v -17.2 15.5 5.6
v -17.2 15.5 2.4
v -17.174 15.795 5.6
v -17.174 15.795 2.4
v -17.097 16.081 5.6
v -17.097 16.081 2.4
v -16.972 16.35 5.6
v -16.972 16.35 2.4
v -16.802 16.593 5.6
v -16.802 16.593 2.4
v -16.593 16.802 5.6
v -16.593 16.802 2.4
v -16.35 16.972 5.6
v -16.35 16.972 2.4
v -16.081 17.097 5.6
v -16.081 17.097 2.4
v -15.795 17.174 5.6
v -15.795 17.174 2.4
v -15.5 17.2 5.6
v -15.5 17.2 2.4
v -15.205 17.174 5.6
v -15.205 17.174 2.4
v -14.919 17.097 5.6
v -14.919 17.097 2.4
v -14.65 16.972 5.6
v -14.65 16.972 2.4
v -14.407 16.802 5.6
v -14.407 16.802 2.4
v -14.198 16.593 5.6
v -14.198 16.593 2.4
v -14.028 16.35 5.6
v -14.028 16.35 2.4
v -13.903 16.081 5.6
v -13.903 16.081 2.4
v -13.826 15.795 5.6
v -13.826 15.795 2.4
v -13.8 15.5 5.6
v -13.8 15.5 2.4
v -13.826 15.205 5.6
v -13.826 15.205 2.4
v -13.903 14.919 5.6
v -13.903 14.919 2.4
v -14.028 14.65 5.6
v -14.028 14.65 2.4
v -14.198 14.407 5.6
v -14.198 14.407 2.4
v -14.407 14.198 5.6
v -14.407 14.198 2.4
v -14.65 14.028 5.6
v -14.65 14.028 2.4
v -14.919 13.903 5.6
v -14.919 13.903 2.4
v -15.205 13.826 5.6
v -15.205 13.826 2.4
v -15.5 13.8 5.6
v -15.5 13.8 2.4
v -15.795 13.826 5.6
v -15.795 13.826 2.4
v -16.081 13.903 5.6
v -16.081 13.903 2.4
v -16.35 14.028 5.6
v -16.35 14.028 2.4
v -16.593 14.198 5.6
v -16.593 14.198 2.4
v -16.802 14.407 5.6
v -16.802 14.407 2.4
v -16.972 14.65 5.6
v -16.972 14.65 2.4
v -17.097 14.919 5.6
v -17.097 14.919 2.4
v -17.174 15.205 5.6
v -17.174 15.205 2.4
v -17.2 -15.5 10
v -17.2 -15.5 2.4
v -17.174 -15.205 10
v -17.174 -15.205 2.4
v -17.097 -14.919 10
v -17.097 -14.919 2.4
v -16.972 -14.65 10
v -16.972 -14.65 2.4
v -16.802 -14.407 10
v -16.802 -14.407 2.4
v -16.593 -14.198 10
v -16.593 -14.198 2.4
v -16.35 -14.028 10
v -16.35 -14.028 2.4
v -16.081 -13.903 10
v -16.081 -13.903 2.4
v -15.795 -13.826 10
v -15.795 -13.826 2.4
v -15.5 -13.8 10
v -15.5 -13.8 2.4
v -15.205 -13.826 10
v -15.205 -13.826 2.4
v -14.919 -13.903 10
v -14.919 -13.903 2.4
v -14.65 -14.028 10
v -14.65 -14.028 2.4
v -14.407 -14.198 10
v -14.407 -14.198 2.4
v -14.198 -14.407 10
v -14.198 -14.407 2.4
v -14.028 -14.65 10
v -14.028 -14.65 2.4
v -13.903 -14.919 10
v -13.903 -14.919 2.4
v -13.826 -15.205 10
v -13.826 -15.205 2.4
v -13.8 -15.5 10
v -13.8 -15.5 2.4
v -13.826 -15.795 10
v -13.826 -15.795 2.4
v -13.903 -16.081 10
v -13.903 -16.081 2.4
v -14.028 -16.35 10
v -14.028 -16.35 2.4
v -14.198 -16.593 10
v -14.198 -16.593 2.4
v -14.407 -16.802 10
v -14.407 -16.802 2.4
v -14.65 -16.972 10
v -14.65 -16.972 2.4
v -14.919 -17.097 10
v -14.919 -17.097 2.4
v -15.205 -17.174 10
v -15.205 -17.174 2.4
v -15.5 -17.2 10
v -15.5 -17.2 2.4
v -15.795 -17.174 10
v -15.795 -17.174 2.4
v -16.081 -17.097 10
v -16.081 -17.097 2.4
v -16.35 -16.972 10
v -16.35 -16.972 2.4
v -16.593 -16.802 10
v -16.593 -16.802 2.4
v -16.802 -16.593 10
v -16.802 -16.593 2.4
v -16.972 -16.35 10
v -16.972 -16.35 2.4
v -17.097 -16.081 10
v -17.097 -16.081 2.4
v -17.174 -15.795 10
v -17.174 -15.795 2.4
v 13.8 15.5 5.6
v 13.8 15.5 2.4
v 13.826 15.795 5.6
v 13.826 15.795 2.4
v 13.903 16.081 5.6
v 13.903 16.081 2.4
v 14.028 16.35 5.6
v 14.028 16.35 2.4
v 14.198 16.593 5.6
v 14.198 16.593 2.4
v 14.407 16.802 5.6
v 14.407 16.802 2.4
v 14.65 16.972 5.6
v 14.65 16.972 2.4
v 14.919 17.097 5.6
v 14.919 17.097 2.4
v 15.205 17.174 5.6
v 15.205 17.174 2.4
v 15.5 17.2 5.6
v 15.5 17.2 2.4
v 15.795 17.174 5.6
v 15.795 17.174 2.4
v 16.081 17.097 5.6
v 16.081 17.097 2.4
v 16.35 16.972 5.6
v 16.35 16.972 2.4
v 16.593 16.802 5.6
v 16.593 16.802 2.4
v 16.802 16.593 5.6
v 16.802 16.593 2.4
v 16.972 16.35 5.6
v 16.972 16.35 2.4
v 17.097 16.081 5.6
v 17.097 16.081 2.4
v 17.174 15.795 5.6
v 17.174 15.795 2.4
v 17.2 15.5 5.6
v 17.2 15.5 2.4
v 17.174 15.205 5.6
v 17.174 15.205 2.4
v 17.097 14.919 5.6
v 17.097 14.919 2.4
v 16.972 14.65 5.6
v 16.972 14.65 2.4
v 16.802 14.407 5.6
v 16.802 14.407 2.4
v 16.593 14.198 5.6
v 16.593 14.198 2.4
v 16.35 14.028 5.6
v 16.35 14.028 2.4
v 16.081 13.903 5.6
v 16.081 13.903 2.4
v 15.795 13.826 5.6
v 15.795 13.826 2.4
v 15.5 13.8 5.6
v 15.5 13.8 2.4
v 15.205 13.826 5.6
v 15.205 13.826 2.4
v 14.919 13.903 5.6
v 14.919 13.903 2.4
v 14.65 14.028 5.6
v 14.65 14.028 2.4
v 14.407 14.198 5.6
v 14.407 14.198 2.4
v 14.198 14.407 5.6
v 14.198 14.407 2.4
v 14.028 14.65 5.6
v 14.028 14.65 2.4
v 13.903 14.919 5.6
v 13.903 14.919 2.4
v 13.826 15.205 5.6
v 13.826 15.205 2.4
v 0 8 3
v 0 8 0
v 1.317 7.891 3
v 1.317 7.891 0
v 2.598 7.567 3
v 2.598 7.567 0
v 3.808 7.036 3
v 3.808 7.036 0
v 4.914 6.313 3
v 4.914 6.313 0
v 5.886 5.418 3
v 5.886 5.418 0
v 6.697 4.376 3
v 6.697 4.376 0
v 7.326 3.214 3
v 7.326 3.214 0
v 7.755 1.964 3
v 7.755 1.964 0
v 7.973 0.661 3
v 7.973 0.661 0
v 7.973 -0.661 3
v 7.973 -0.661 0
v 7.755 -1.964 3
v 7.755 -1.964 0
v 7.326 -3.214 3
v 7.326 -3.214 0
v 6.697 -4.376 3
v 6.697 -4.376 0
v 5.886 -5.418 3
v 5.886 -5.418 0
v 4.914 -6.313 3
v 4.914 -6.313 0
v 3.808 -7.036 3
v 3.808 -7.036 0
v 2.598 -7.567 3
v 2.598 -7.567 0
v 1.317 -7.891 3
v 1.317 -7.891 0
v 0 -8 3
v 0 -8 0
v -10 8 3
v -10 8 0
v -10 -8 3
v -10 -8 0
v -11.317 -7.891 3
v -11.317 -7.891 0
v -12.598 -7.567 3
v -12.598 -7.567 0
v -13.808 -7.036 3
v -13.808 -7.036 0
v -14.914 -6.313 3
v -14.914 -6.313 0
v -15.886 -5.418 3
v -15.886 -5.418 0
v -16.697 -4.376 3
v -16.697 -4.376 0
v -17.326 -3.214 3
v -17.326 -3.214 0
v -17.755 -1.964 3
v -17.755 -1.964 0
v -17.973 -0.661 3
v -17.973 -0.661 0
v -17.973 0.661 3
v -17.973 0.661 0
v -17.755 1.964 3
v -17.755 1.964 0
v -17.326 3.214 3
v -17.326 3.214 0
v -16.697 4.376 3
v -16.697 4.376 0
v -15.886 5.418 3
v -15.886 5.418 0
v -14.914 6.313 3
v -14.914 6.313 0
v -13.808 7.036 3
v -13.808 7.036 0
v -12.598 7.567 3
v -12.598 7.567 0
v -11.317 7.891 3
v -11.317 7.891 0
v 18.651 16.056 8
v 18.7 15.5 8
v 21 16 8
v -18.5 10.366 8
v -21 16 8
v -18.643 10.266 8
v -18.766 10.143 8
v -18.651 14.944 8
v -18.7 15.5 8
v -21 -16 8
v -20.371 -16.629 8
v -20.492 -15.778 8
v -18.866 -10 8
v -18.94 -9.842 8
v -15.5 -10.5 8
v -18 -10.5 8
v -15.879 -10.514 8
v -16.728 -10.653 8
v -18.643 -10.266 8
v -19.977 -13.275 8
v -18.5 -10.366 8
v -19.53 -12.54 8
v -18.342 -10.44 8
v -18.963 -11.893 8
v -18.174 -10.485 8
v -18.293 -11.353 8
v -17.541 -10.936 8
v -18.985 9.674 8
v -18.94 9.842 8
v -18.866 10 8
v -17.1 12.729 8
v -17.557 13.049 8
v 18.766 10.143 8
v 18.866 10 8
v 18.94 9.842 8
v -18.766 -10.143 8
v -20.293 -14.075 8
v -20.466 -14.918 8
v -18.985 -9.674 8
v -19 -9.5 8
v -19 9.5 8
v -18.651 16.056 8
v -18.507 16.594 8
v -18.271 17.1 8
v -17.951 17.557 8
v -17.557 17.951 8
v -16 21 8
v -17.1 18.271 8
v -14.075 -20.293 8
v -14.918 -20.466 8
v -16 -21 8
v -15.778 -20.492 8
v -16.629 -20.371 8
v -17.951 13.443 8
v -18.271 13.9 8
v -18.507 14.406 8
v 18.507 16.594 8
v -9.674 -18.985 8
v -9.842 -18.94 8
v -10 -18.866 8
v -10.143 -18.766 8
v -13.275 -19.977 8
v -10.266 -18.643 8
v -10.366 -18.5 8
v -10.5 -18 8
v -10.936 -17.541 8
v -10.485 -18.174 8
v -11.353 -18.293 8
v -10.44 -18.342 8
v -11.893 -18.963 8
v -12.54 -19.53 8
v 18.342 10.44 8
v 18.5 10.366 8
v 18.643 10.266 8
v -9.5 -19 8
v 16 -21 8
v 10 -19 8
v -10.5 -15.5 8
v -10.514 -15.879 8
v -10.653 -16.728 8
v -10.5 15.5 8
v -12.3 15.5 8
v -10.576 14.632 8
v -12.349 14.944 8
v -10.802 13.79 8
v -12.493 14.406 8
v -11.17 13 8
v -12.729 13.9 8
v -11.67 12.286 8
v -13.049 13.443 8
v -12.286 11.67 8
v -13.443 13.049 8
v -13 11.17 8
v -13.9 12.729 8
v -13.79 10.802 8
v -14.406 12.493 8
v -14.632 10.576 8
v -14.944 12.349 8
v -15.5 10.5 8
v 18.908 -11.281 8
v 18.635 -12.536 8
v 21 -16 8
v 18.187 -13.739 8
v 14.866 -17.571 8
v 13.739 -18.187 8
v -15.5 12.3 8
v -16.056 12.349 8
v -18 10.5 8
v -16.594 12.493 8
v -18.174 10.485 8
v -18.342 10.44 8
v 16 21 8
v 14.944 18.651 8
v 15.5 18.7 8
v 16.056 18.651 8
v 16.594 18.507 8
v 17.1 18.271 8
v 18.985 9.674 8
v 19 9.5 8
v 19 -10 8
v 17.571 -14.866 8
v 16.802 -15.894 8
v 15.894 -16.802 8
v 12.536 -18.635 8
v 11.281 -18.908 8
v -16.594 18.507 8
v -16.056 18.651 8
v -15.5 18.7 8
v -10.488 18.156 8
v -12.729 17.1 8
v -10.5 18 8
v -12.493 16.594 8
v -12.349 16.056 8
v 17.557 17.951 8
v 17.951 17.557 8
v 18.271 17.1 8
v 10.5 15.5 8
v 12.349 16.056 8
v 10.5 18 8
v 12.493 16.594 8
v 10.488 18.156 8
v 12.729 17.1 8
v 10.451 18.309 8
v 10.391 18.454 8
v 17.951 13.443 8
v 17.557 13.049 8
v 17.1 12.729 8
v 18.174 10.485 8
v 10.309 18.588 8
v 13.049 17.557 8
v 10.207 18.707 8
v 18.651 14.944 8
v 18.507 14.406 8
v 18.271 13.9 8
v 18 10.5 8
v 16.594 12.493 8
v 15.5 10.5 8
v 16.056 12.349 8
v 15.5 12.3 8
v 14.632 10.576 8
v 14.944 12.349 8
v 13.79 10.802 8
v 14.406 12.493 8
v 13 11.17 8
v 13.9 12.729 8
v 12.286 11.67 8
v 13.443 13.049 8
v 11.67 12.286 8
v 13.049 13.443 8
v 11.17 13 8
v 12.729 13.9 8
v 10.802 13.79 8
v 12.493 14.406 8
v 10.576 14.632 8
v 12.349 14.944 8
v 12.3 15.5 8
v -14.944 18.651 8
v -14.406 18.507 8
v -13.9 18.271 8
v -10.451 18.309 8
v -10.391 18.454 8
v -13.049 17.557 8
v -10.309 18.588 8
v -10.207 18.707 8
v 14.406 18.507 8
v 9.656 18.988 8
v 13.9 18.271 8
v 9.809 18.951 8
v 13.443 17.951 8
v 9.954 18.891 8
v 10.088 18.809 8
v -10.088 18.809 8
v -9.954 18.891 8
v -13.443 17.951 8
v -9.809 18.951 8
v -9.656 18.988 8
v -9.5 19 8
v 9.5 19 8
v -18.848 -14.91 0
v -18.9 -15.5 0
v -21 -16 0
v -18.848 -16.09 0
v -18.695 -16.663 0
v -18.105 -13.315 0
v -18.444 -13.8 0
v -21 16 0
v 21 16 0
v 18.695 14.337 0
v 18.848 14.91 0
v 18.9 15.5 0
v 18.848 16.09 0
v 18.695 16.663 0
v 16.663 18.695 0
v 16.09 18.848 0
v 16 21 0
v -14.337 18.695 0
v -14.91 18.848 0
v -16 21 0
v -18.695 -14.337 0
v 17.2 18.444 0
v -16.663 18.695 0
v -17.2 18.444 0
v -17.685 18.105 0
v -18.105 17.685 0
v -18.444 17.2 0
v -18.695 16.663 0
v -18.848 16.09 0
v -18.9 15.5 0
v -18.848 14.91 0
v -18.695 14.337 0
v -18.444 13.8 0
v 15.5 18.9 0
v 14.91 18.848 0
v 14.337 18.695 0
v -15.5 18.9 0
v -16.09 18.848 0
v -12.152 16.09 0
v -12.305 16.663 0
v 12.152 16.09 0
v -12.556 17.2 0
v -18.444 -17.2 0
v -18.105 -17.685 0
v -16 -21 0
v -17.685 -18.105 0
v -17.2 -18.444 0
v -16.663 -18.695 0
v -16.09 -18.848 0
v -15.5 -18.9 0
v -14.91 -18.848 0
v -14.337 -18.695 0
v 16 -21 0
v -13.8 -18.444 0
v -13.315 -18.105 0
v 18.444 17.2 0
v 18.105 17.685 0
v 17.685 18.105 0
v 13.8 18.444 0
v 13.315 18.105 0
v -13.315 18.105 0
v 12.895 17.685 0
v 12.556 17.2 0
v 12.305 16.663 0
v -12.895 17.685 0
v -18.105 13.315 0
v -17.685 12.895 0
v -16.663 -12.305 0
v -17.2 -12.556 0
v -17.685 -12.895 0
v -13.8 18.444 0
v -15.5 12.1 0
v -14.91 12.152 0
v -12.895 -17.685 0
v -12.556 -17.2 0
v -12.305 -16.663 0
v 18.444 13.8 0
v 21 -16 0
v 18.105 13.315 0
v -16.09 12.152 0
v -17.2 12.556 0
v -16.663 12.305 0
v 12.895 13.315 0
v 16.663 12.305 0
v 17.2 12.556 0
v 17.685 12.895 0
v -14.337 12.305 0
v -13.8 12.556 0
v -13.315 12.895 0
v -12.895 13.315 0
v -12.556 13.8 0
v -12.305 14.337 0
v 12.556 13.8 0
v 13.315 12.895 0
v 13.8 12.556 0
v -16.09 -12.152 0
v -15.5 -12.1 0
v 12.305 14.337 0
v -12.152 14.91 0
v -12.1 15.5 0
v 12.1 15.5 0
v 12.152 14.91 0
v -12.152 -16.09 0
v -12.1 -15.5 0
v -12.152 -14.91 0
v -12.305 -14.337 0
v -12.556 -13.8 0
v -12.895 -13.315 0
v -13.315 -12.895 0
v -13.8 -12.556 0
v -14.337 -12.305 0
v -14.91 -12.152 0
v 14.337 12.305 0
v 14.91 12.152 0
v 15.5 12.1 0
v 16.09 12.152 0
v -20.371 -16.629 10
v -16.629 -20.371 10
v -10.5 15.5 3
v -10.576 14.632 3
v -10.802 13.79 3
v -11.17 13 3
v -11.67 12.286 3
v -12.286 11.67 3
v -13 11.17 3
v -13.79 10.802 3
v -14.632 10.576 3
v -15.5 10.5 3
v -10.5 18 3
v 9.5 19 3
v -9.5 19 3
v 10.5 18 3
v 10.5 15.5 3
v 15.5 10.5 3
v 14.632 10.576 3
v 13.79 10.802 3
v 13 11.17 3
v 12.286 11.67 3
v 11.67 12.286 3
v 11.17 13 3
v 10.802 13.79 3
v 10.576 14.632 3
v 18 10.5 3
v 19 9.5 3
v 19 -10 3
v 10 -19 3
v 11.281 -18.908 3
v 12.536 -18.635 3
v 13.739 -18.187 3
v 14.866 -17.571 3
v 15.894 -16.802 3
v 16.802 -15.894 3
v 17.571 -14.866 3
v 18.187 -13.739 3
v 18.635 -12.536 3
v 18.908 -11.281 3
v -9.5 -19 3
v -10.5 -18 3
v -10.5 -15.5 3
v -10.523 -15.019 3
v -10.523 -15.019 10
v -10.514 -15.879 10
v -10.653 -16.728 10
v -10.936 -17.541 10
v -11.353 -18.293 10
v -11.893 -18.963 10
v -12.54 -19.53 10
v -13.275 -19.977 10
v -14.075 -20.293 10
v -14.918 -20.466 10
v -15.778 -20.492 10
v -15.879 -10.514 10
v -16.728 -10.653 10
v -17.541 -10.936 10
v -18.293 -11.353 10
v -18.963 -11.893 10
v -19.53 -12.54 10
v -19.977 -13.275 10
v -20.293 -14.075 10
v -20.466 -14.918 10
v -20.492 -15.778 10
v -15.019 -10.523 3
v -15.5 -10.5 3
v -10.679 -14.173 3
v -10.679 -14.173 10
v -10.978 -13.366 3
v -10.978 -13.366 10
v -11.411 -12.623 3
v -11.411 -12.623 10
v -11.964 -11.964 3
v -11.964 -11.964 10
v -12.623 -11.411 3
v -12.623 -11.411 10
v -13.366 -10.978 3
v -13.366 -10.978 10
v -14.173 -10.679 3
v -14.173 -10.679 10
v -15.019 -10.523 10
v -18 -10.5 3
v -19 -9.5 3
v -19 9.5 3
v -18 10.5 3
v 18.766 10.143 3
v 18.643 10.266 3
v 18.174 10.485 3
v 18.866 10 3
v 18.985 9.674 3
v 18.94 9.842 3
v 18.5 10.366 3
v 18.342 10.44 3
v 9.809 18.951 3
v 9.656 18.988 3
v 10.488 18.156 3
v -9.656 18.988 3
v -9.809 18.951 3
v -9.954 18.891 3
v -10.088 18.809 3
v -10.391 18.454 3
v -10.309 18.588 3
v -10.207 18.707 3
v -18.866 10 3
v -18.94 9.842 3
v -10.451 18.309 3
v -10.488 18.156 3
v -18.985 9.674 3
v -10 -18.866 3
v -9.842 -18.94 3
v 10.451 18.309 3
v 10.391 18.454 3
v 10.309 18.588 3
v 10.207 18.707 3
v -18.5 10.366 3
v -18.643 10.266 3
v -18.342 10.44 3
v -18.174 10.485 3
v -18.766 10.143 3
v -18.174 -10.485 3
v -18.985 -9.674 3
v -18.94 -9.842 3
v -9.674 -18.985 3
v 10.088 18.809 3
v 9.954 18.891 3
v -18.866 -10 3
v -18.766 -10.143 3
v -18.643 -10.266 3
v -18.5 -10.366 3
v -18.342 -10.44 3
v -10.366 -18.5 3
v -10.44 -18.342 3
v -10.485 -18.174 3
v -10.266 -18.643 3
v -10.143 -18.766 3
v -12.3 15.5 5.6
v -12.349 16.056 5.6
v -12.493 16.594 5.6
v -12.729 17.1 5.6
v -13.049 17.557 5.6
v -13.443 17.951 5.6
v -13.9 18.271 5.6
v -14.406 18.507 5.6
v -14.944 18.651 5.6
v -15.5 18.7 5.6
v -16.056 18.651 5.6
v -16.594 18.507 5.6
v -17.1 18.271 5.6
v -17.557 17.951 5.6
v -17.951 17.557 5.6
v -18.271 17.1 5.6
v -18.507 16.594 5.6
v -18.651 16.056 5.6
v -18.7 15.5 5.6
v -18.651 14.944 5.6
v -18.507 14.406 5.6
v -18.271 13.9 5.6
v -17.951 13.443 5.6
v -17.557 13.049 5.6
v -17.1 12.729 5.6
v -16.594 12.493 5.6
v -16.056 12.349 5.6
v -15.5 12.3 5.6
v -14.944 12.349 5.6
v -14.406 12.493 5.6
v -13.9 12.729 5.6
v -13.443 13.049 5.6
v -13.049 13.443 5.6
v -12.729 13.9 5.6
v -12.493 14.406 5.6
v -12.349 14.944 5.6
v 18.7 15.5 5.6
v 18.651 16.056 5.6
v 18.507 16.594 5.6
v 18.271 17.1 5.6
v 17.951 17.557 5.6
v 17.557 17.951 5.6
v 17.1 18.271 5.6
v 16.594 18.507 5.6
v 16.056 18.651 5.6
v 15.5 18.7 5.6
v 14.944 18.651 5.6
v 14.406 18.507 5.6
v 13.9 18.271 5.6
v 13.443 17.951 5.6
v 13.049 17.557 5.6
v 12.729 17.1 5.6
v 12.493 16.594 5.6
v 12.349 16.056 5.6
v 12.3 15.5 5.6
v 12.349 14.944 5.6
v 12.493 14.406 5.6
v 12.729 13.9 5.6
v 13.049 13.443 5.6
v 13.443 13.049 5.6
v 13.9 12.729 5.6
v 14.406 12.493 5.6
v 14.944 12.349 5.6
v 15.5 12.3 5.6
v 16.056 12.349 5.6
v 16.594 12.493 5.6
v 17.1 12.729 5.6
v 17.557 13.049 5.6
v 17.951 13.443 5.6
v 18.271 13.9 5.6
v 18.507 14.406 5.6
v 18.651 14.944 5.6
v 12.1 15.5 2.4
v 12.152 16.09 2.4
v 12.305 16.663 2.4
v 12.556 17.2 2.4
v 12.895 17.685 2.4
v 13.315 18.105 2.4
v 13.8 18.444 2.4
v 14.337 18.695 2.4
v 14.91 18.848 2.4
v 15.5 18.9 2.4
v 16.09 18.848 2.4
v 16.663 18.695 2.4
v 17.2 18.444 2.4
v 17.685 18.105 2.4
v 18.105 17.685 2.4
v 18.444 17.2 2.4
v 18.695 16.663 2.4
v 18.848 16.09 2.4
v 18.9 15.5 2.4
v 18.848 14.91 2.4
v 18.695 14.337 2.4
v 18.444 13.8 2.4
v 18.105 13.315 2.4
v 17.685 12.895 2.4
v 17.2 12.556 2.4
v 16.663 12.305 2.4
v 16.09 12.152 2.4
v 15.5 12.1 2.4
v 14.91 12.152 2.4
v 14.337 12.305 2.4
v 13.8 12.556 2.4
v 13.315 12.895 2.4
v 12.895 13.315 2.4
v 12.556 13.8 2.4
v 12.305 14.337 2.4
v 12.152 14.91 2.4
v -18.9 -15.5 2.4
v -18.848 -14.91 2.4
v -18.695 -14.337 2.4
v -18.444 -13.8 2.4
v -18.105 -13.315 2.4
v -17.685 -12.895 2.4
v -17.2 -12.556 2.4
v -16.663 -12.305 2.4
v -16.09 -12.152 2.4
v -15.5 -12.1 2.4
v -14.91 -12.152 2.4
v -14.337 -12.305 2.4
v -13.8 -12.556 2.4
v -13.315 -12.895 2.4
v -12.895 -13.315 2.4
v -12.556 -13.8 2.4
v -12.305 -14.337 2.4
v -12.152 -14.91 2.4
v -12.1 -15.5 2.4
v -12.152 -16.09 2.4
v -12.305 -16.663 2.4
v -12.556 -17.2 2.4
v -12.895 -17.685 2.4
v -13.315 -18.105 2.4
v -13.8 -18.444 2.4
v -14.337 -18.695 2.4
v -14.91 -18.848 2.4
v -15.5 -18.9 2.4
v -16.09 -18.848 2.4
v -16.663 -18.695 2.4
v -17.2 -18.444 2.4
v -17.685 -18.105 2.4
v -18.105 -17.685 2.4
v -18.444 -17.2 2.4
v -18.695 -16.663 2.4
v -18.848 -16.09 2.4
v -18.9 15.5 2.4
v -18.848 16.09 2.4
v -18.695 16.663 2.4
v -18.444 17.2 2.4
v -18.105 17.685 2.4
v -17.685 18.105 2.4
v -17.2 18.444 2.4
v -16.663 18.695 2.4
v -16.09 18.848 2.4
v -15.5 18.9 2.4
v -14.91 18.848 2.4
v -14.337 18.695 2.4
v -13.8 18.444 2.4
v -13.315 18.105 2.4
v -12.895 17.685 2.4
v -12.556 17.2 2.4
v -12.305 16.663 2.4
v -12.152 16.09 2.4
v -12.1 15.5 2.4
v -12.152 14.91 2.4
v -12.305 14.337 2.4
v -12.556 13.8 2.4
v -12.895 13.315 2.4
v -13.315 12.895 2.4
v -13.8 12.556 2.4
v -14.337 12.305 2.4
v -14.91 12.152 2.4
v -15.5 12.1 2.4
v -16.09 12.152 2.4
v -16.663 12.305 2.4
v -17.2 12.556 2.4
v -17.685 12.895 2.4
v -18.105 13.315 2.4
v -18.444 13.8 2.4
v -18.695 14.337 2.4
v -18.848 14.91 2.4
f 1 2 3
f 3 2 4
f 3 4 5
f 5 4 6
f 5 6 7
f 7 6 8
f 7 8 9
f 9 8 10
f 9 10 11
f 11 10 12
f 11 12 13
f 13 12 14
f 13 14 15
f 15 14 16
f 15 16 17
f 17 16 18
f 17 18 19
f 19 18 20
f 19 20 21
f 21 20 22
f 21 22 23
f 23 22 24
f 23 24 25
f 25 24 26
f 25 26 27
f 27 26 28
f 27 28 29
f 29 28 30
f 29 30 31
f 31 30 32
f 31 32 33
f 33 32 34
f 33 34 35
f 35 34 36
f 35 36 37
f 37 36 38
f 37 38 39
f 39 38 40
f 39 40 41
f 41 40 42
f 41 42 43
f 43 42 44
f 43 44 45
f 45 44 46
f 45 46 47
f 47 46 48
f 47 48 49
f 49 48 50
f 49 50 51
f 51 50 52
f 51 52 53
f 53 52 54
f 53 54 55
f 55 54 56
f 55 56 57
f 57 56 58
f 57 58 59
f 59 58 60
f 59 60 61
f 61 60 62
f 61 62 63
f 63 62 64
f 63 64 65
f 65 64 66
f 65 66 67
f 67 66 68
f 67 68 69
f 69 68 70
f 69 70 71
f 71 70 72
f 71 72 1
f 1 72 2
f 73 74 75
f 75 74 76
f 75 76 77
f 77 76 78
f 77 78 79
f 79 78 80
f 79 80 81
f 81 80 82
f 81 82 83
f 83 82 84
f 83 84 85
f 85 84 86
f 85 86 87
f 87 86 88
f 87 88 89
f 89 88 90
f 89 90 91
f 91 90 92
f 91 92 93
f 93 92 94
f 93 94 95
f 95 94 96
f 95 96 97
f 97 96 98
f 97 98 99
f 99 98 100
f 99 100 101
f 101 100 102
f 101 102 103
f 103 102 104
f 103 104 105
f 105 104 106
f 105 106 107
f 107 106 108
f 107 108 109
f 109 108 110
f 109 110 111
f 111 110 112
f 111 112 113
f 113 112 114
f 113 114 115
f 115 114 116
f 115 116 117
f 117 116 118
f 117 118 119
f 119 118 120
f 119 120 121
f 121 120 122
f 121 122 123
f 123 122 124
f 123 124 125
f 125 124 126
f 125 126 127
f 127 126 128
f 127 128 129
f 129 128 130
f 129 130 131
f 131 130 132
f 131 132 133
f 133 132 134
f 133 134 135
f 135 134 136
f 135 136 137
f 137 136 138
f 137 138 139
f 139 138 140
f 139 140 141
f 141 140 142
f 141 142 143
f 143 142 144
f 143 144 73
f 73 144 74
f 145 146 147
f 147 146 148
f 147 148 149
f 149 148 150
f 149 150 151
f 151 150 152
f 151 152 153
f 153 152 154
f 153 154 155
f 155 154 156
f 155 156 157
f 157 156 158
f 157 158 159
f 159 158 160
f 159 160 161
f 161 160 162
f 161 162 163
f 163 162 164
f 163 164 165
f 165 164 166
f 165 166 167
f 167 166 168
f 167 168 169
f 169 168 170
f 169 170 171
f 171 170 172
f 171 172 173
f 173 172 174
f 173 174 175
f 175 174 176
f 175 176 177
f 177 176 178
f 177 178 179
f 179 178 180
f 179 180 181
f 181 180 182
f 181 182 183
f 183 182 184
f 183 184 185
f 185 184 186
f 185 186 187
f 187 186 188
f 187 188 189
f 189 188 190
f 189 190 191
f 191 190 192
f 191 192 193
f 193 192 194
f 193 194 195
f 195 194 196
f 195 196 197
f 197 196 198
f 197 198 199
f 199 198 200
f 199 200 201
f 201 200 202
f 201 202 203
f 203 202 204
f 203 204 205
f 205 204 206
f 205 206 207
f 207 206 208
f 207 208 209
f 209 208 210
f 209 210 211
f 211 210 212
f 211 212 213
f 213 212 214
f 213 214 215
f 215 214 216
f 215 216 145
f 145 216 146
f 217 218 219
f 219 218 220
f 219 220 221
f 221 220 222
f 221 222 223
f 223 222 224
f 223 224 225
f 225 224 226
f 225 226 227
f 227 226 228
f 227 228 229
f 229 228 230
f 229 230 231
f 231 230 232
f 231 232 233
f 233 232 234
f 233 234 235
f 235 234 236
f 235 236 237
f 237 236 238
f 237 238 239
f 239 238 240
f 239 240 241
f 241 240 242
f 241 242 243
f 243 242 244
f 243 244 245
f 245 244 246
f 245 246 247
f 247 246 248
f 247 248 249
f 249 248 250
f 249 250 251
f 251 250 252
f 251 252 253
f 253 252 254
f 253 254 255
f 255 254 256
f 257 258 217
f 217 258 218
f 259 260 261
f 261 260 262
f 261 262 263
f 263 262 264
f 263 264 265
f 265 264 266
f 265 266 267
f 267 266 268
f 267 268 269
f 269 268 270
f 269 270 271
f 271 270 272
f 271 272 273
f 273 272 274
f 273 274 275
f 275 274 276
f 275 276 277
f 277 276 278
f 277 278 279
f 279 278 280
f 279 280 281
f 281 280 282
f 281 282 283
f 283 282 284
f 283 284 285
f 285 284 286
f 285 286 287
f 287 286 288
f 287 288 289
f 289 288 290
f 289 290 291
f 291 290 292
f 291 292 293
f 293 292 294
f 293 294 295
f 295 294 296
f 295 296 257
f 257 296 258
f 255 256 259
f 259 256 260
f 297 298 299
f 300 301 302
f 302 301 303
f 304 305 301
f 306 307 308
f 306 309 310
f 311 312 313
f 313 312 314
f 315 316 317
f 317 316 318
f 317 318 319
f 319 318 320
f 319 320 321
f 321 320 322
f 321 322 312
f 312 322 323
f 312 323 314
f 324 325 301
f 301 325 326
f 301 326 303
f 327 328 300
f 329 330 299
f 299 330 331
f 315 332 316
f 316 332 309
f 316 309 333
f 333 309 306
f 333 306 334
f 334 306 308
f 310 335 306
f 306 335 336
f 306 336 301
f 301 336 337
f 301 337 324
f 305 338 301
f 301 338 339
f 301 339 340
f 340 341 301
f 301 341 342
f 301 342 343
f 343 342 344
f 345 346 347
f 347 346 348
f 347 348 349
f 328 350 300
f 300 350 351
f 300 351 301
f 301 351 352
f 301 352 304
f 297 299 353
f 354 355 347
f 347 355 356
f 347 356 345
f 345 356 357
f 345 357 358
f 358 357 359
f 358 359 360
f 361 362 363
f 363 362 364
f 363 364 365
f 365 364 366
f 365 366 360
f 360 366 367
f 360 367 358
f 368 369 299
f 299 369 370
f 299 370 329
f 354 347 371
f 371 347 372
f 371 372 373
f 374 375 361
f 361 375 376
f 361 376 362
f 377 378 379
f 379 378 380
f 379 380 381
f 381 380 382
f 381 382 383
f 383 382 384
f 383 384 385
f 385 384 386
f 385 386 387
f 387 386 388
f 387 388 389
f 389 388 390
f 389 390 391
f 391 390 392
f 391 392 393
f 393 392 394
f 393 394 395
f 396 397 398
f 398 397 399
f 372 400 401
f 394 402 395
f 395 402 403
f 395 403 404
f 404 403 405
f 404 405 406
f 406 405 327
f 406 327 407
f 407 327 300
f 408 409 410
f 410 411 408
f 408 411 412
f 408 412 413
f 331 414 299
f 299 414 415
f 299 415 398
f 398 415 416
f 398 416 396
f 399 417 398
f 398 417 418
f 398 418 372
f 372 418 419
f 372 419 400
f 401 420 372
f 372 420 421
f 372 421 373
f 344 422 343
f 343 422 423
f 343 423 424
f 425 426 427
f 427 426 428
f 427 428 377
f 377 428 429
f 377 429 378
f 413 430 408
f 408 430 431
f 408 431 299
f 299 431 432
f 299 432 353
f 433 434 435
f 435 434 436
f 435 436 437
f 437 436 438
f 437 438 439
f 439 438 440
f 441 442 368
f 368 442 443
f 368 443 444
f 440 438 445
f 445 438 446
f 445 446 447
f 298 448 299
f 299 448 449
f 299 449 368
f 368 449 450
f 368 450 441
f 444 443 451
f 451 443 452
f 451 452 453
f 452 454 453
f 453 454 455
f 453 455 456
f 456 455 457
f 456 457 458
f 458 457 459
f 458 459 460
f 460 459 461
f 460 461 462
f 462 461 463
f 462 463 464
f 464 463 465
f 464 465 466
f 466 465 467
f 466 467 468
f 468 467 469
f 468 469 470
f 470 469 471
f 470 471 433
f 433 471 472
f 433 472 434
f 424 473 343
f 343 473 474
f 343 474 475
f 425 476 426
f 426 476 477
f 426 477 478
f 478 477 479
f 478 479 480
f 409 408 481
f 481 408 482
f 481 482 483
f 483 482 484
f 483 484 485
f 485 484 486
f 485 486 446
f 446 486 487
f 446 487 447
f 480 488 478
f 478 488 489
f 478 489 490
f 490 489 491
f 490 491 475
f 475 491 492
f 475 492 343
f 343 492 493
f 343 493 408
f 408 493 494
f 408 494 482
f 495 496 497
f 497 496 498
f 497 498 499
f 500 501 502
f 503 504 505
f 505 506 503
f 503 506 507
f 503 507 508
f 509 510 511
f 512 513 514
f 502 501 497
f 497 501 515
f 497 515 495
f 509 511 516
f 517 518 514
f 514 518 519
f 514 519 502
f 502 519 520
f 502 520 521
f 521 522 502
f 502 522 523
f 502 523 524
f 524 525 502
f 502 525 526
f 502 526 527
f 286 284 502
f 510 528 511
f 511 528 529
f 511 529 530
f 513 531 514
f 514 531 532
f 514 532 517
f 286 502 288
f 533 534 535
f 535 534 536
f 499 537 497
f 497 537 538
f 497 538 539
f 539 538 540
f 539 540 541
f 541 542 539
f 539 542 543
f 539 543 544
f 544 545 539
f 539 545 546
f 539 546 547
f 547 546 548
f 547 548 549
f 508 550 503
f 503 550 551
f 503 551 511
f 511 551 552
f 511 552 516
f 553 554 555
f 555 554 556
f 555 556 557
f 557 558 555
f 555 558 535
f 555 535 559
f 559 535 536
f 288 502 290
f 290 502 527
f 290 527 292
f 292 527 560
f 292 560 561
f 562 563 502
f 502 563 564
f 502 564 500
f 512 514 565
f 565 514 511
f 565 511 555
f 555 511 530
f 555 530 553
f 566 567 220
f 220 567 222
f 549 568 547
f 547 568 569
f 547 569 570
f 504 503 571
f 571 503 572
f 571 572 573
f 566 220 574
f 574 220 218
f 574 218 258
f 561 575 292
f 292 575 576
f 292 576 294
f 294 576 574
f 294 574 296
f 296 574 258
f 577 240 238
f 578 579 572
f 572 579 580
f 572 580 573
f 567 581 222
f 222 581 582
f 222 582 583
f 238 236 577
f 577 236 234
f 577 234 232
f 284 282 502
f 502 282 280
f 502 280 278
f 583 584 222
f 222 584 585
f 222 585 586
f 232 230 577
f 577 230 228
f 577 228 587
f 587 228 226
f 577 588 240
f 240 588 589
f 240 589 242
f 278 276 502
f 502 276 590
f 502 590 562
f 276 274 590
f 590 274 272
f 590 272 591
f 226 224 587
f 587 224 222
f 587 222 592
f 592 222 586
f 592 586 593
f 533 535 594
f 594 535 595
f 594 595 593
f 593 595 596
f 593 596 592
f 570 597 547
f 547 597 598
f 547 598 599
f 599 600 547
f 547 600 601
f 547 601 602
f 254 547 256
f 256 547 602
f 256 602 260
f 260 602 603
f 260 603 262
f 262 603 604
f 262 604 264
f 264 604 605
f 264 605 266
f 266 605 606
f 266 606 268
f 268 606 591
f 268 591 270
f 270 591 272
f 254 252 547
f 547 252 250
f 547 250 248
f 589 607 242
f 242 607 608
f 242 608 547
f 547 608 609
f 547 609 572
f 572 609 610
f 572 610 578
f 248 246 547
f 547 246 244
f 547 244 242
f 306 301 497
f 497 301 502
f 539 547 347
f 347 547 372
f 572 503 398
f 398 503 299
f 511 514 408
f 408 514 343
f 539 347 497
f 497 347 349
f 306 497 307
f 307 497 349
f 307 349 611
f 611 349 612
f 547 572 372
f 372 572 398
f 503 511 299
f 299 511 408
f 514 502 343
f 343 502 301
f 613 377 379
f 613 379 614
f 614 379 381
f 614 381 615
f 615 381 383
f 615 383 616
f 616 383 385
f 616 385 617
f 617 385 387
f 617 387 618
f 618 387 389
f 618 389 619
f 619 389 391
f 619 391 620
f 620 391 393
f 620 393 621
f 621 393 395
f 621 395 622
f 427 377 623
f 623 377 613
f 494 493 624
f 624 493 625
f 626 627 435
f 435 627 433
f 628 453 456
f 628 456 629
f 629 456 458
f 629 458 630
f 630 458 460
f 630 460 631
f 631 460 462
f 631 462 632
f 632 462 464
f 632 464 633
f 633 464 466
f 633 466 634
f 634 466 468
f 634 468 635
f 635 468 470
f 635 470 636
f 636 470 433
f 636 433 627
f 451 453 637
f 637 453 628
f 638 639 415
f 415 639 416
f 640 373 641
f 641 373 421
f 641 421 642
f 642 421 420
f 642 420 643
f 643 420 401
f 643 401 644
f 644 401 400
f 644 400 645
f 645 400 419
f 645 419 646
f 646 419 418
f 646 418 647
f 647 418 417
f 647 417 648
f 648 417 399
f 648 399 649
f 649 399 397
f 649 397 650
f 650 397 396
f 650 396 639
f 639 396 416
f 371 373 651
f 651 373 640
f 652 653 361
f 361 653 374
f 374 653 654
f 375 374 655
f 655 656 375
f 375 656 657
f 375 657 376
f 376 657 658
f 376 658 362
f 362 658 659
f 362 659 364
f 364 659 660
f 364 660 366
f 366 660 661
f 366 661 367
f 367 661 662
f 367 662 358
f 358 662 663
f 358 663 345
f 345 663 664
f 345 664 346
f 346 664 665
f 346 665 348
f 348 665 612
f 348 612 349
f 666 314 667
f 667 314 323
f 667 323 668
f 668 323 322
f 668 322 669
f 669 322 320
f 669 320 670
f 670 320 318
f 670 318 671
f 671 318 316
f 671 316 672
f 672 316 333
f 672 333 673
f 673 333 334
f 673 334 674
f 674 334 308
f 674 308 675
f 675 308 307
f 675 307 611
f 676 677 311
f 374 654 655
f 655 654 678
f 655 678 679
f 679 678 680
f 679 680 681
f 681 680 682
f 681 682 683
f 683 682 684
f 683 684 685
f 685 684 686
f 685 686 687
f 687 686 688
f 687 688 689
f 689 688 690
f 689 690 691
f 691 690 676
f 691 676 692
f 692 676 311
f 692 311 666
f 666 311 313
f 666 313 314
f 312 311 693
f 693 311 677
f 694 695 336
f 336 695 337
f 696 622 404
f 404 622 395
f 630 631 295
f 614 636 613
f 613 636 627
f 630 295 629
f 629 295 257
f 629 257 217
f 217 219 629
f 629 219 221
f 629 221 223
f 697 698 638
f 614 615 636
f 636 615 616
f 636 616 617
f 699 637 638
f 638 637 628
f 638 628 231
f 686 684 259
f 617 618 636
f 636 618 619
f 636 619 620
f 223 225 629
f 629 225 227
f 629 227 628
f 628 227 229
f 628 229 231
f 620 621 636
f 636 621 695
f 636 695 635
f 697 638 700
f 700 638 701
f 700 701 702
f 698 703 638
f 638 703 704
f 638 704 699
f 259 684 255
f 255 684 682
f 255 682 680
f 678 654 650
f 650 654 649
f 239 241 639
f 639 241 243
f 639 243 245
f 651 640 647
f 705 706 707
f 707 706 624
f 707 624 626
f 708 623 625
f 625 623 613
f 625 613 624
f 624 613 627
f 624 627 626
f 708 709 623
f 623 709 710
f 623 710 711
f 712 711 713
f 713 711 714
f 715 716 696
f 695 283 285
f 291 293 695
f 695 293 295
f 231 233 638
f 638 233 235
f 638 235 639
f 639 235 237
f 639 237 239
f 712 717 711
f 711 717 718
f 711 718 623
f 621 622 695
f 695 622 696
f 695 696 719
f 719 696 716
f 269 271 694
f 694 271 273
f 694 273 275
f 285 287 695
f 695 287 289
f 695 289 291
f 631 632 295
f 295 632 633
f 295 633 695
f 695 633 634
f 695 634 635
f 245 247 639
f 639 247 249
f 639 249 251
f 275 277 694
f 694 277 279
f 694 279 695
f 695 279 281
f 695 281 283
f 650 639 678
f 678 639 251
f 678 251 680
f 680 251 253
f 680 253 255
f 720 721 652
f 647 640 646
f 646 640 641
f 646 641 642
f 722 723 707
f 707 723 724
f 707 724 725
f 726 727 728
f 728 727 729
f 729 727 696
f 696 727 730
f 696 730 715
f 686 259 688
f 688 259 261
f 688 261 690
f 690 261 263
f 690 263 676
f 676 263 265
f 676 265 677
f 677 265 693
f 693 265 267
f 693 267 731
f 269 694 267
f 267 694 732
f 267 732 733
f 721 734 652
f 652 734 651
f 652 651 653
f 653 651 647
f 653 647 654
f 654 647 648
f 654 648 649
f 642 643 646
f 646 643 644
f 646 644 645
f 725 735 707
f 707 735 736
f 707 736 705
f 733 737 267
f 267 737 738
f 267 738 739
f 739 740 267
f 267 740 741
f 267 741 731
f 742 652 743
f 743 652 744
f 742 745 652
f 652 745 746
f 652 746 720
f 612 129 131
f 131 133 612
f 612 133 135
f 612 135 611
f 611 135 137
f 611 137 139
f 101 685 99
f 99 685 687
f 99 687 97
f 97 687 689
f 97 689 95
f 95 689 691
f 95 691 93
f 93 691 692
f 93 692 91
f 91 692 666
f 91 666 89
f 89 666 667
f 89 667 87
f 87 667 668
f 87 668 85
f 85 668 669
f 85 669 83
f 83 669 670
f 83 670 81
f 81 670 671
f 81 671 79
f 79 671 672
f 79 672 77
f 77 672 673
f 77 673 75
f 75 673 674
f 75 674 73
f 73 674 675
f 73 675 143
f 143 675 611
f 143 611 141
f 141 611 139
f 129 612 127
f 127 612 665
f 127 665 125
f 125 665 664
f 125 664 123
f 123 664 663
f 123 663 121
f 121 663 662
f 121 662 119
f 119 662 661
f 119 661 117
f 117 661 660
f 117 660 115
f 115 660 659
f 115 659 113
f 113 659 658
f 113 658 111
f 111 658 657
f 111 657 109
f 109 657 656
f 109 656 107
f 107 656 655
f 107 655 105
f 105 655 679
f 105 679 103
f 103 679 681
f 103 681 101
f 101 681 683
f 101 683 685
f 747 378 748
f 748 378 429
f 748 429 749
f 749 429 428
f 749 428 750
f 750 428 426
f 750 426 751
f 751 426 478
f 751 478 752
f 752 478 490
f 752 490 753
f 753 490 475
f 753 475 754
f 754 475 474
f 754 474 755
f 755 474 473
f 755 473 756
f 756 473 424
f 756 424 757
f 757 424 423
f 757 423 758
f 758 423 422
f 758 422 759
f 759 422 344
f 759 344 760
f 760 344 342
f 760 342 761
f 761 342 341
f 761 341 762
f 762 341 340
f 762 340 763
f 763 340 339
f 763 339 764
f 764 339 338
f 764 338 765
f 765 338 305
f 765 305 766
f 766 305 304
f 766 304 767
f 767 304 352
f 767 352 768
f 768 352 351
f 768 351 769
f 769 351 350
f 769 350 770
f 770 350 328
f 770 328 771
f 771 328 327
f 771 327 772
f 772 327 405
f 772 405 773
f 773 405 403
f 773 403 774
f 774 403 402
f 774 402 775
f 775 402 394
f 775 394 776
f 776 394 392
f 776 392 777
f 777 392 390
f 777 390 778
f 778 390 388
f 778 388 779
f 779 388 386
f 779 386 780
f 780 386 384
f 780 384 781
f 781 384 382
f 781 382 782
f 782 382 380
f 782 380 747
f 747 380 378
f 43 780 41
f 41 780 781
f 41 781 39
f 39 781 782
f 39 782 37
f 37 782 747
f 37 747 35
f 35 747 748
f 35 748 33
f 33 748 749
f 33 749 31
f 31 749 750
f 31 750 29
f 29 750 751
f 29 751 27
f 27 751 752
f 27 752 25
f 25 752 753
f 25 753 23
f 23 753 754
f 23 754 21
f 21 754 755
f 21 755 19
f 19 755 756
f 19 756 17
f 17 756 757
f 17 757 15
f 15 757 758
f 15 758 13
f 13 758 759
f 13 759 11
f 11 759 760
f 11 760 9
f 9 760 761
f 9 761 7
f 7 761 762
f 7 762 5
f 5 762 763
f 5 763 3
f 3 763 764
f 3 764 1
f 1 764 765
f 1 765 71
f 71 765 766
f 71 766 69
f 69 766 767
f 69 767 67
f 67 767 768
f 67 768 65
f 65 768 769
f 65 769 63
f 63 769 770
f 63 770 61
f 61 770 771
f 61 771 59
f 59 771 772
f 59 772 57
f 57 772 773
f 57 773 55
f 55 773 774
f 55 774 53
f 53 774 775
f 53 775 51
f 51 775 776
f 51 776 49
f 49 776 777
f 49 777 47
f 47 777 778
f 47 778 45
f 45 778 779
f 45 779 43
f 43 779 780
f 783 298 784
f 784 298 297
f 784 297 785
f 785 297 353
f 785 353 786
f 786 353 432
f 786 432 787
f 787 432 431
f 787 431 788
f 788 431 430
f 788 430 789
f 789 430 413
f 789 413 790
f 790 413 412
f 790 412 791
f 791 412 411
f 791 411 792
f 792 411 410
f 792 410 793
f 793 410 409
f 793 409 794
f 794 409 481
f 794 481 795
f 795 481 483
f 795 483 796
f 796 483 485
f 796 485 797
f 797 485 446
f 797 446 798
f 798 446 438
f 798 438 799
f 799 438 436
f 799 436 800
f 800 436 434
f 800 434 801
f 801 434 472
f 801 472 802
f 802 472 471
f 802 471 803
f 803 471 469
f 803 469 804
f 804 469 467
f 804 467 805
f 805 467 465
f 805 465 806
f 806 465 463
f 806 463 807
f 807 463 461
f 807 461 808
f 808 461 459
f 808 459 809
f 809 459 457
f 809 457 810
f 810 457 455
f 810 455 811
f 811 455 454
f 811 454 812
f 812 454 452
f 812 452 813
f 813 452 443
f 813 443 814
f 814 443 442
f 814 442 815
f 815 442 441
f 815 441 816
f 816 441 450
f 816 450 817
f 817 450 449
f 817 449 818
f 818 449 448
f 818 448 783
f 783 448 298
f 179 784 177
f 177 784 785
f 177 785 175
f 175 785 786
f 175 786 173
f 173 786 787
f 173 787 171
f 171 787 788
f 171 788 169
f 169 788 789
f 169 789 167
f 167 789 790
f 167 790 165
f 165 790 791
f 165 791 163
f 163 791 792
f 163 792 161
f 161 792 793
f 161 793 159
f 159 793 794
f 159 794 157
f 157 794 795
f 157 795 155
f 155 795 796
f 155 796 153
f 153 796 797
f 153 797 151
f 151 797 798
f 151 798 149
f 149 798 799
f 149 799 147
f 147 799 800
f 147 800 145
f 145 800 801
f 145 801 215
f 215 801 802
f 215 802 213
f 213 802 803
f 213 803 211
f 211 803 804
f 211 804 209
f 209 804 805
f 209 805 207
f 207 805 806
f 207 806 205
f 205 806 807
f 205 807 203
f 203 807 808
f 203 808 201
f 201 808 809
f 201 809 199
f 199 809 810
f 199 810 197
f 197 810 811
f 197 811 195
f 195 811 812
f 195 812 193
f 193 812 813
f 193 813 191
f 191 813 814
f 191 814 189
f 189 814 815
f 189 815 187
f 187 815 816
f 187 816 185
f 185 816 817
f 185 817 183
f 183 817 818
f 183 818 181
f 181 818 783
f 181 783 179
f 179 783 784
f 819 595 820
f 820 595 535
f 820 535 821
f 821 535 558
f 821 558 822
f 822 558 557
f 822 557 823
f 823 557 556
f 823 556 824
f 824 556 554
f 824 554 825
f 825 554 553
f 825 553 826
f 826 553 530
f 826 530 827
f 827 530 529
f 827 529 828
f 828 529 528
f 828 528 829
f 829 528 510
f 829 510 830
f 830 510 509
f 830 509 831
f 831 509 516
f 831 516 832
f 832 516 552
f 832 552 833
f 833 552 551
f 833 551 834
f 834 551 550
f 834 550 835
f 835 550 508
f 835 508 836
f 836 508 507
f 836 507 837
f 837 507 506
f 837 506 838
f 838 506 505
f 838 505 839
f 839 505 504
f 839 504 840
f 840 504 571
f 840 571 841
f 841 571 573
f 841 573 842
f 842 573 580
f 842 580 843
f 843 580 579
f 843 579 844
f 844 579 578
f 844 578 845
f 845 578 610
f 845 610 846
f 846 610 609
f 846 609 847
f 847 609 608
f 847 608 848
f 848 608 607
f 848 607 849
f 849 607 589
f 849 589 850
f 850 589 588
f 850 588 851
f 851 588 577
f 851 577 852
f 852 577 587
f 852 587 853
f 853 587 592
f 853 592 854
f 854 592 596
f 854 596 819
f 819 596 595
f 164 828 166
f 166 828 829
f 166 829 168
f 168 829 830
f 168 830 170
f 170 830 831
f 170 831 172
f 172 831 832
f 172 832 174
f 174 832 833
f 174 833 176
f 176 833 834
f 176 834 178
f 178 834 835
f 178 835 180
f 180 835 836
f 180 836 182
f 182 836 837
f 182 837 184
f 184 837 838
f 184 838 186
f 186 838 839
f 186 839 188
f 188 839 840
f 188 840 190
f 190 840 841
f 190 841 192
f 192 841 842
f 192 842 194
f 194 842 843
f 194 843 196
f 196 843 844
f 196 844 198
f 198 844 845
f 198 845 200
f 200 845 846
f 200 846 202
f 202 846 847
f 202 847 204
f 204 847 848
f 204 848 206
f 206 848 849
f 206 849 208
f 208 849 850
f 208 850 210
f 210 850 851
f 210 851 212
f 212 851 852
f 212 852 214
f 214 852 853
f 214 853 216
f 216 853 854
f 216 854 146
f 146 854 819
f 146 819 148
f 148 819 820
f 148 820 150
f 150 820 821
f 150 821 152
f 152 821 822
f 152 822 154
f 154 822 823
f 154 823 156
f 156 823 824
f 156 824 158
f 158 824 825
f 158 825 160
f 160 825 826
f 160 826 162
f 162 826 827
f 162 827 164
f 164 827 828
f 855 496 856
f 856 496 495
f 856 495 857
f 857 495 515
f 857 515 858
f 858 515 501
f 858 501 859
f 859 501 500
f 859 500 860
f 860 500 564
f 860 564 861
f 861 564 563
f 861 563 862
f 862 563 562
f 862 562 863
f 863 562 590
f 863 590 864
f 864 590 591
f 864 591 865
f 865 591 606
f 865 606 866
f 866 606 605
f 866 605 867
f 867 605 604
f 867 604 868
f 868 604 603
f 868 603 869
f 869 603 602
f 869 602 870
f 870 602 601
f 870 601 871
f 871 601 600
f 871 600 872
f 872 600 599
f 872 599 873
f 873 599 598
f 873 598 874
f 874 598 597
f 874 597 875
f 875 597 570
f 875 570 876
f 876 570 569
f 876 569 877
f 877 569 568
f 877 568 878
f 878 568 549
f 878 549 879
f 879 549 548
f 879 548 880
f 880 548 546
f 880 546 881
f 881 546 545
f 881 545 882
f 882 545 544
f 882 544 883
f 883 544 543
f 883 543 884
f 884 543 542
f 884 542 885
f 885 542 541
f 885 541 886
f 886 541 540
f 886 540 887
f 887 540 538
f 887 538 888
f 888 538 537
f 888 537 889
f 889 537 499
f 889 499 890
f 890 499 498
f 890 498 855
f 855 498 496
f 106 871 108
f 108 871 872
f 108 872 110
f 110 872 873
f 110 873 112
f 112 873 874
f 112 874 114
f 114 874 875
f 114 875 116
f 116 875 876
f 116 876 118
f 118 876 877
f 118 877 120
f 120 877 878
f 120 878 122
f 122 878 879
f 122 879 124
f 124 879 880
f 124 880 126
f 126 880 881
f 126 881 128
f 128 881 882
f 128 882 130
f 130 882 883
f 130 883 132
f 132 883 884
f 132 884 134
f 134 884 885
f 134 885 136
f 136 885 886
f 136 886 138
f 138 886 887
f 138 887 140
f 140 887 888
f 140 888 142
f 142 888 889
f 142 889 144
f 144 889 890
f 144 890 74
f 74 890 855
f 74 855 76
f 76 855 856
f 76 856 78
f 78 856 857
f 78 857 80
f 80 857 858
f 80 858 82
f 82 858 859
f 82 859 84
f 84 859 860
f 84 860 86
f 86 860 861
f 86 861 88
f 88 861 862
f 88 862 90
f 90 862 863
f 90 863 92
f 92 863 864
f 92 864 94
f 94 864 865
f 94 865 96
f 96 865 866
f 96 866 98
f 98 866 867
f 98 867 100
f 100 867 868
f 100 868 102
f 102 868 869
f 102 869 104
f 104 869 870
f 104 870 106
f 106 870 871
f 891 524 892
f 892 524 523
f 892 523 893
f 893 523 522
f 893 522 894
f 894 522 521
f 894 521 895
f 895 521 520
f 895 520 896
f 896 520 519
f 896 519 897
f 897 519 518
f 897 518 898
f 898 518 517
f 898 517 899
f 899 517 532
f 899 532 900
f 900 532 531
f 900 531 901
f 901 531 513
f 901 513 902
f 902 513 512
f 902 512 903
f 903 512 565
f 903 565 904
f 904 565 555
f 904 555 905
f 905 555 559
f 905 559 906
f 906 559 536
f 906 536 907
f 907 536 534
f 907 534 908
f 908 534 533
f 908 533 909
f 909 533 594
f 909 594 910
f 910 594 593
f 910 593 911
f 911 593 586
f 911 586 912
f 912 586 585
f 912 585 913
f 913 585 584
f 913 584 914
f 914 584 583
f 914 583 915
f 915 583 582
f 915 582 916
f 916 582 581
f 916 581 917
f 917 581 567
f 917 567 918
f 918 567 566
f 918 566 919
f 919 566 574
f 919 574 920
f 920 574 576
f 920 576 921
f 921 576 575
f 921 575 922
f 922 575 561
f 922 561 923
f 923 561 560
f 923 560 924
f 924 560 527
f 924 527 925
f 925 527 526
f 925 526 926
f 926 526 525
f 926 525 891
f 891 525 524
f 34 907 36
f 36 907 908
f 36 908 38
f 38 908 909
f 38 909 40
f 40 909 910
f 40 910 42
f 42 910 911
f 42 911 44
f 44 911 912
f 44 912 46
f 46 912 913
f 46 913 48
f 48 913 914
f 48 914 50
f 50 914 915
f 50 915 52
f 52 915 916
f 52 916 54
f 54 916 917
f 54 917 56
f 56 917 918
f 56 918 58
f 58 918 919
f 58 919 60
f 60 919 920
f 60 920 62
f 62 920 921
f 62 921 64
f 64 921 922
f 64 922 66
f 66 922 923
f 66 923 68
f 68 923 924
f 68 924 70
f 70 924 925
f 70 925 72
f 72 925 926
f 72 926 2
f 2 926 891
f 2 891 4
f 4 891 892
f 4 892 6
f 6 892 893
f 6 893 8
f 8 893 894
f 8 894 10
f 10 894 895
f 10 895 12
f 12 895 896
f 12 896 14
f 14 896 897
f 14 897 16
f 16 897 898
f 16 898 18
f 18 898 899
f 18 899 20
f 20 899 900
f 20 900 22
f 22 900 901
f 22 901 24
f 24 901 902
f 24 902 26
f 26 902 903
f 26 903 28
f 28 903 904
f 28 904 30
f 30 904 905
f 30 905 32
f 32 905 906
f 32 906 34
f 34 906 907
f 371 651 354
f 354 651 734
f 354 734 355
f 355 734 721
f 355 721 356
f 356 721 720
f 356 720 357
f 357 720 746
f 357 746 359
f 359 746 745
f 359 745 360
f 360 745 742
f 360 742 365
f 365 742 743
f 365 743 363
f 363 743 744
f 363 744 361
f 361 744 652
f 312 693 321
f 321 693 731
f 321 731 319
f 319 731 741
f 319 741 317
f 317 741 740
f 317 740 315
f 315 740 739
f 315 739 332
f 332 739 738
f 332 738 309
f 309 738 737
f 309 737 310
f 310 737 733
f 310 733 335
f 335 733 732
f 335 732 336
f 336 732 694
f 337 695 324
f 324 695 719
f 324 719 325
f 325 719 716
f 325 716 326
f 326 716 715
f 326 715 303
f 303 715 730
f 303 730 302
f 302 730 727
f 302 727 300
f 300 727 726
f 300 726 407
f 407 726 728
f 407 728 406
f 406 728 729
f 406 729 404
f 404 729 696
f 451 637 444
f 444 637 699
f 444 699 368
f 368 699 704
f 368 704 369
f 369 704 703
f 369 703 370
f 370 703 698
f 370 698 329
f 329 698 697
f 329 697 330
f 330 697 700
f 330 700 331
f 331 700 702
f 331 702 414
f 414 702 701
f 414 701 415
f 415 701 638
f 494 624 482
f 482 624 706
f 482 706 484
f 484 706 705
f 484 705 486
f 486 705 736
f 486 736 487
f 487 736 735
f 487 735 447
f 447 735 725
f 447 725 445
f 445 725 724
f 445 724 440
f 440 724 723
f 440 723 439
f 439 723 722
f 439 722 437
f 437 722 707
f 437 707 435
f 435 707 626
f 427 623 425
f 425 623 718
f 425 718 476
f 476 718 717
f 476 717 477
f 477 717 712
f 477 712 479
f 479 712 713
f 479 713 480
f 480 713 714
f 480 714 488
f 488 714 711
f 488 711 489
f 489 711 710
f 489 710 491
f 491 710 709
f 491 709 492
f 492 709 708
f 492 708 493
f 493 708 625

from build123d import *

# Parameters (mm, degrees)
SKETCH_1_W          = 42
SKETCH_1_H          = 42
SKETCH_1_R          = 1.7
EXTRUDE_1_DEPTH     = 8
CHAMFER_1_SIZE      = 5
CUT_EXTRUDE_1_DEPTH = 5
SKETCH_3_R          = 1.7
EXTRUDE_2_DEPTH     = 2
SKETCH_4_R          = 3.2
CUT_EXTRUDE_2_DEPTH = 2.4
SKETCH_5_R          = 3.4
CUT_EXTRUDE_3_DEPTH = 2.4
FILLET_1_R          = 1


with BuildPart() as part:
    # Эскиз1 → Бобышка-Вытянуть1 (new body)
    with BuildSketch(Plane.XY):
        Rectangle(SKETCH_1_W, SKETCH_1_H)
        with Locations((-15.5, -15.5)):
            Circle(SKETCH_1_R, mode=Mode.SUBTRACT)
        with Locations((-15.5, 15.5)):
            Circle(SKETCH_1_R, mode=Mode.SUBTRACT)
        with Locations((15.5, 15.5)):
            Circle(SKETCH_1_R, mode=Mode.SUBTRACT)
        with BuildLine():
            Line((0, -8), (-10, -8))
            ThreePointArc((-10, -8), (-18, 0), (-10, 8))
            Line((-10, 8), (0, 8))
            ThreePointArc((0, 8), (8, 0), (0, -8))
        make_face(mode=Mode.SUBTRACT)
    extrude(amount=EXTRUDE_1_DEPTH)

    # Фаска1
    chamfer_1_edges = [part.edges().sort_by_distance(p)[0] for p in [
        (-21, 21, 4),
        (21, 21, 4),
        (21, -21, 4),
        (-21, -21, 4),
    ]]
    chamfer(chamfer_1_edges, length=CHAMFER_1_SIZE)

    # Эскиз2 → Вырез-Вытянуть1 (cut)
    with BuildSketch(Plane.XY.offset(8)):
        with BuildLine():
            Line((-10.5, 15.5), (-10.5, 19))
            Line((-10.5, 19), (10.5, 19))
            Line((10.5, 19), (10.5, 15.5))
            ThreePointArc((10.5, 15.5), (11.964466094, 11.964466094), (15.5, 10.5))
            Line((15.5, 10.5), (19, 10.5))
            Line((19, 10.5), (19, -10))
            ThreePointArc((19, -10), (16.363961031, -16.363961031), (10, -19))
            Line((10, -19), (-10.5, -19))
            Line((-10.5, -19), (-10.5, -15.5))
            ThreePointArc((-10.5, -15.5), (-11.964466094, -11.964466094), (-15.5, -10.5))
            Line((-15.5, -10.5), (-19, -10.5))
            Line((-19, -10.5), (-19, 10.5))
            Line((-19, 10.5), (-15.5, 10.5))
            ThreePointArc((-15.5, 10.5), (-11.964466094, 11.964466094), (-10.5, 15.5))
        make_face()
    extrude(amount=-CUT_EXTRUDE_1_DEPTH, mode=Mode.SUBTRACT)

    # Эскиз3 → Бобышка-Вытянуть2 (add)
    with BuildSketch(Plane.XY.offset(8)):
        with BuildLine():
            Line((-20.370828693, -16.629171307), (-16.629171307, -20.370828693))
            ThreePointArc((-16.629171307, -20.370828693), (-11.964466094, -11.964466094), (-20.370828693, -16.629171307))
        make_face()
        with Locations((-15.5, -15.5)):
            Circle(SKETCH_3_R, mode=Mode.SUBTRACT)
    extrude(amount=EXTRUDE_2_DEPTH)

    # Эскиз4 → Вырез-Вытянуть2 (cut)
    with BuildSketch(Plane.XY.offset(8)):
        with Locations((-15.5, 15.5)):
            Circle(SKETCH_4_R)
        with Locations((15.5, 15.5)):
            Circle(SKETCH_4_R)
    extrude(amount=-CUT_EXTRUDE_2_DEPTH, mode=Mode.SUBTRACT)

    # Эскиз5 → Вырез-Вытянуть3 (cut)
    with BuildSketch(Plane(origin=(0, 0, 0), x_dir=(-1, 0, 0), z_dir=(0, 0, -1))):
        with Locations((-15.5, 15.5)):
            Circle(SKETCH_5_R)
        with Locations((15.5, 15.5)):
            Circle(SKETCH_5_R)
        with Locations((15.5, -15.5)):
            Circle(SKETCH_5_R)
    extrude(amount=-CUT_EXTRUDE_3_DEPTH, mode=Mode.SUBTRACT)

    # Скругление1
    fillet_1_edges = [part.edges().sort_by_distance(p)[0] for p in [
        (-10.5, 19, 5.5),
        (10.5, 19, 5.5),
        (19, 10.5, 5.5),
        (-10.5, -19, 5.5),
        (-19, -10.5, 5.5),
        (-19, 10.5, 5.5),
    ]]
    fillet(fillet_1_edges, radius=FILLET_1_R)


solid = part.part
